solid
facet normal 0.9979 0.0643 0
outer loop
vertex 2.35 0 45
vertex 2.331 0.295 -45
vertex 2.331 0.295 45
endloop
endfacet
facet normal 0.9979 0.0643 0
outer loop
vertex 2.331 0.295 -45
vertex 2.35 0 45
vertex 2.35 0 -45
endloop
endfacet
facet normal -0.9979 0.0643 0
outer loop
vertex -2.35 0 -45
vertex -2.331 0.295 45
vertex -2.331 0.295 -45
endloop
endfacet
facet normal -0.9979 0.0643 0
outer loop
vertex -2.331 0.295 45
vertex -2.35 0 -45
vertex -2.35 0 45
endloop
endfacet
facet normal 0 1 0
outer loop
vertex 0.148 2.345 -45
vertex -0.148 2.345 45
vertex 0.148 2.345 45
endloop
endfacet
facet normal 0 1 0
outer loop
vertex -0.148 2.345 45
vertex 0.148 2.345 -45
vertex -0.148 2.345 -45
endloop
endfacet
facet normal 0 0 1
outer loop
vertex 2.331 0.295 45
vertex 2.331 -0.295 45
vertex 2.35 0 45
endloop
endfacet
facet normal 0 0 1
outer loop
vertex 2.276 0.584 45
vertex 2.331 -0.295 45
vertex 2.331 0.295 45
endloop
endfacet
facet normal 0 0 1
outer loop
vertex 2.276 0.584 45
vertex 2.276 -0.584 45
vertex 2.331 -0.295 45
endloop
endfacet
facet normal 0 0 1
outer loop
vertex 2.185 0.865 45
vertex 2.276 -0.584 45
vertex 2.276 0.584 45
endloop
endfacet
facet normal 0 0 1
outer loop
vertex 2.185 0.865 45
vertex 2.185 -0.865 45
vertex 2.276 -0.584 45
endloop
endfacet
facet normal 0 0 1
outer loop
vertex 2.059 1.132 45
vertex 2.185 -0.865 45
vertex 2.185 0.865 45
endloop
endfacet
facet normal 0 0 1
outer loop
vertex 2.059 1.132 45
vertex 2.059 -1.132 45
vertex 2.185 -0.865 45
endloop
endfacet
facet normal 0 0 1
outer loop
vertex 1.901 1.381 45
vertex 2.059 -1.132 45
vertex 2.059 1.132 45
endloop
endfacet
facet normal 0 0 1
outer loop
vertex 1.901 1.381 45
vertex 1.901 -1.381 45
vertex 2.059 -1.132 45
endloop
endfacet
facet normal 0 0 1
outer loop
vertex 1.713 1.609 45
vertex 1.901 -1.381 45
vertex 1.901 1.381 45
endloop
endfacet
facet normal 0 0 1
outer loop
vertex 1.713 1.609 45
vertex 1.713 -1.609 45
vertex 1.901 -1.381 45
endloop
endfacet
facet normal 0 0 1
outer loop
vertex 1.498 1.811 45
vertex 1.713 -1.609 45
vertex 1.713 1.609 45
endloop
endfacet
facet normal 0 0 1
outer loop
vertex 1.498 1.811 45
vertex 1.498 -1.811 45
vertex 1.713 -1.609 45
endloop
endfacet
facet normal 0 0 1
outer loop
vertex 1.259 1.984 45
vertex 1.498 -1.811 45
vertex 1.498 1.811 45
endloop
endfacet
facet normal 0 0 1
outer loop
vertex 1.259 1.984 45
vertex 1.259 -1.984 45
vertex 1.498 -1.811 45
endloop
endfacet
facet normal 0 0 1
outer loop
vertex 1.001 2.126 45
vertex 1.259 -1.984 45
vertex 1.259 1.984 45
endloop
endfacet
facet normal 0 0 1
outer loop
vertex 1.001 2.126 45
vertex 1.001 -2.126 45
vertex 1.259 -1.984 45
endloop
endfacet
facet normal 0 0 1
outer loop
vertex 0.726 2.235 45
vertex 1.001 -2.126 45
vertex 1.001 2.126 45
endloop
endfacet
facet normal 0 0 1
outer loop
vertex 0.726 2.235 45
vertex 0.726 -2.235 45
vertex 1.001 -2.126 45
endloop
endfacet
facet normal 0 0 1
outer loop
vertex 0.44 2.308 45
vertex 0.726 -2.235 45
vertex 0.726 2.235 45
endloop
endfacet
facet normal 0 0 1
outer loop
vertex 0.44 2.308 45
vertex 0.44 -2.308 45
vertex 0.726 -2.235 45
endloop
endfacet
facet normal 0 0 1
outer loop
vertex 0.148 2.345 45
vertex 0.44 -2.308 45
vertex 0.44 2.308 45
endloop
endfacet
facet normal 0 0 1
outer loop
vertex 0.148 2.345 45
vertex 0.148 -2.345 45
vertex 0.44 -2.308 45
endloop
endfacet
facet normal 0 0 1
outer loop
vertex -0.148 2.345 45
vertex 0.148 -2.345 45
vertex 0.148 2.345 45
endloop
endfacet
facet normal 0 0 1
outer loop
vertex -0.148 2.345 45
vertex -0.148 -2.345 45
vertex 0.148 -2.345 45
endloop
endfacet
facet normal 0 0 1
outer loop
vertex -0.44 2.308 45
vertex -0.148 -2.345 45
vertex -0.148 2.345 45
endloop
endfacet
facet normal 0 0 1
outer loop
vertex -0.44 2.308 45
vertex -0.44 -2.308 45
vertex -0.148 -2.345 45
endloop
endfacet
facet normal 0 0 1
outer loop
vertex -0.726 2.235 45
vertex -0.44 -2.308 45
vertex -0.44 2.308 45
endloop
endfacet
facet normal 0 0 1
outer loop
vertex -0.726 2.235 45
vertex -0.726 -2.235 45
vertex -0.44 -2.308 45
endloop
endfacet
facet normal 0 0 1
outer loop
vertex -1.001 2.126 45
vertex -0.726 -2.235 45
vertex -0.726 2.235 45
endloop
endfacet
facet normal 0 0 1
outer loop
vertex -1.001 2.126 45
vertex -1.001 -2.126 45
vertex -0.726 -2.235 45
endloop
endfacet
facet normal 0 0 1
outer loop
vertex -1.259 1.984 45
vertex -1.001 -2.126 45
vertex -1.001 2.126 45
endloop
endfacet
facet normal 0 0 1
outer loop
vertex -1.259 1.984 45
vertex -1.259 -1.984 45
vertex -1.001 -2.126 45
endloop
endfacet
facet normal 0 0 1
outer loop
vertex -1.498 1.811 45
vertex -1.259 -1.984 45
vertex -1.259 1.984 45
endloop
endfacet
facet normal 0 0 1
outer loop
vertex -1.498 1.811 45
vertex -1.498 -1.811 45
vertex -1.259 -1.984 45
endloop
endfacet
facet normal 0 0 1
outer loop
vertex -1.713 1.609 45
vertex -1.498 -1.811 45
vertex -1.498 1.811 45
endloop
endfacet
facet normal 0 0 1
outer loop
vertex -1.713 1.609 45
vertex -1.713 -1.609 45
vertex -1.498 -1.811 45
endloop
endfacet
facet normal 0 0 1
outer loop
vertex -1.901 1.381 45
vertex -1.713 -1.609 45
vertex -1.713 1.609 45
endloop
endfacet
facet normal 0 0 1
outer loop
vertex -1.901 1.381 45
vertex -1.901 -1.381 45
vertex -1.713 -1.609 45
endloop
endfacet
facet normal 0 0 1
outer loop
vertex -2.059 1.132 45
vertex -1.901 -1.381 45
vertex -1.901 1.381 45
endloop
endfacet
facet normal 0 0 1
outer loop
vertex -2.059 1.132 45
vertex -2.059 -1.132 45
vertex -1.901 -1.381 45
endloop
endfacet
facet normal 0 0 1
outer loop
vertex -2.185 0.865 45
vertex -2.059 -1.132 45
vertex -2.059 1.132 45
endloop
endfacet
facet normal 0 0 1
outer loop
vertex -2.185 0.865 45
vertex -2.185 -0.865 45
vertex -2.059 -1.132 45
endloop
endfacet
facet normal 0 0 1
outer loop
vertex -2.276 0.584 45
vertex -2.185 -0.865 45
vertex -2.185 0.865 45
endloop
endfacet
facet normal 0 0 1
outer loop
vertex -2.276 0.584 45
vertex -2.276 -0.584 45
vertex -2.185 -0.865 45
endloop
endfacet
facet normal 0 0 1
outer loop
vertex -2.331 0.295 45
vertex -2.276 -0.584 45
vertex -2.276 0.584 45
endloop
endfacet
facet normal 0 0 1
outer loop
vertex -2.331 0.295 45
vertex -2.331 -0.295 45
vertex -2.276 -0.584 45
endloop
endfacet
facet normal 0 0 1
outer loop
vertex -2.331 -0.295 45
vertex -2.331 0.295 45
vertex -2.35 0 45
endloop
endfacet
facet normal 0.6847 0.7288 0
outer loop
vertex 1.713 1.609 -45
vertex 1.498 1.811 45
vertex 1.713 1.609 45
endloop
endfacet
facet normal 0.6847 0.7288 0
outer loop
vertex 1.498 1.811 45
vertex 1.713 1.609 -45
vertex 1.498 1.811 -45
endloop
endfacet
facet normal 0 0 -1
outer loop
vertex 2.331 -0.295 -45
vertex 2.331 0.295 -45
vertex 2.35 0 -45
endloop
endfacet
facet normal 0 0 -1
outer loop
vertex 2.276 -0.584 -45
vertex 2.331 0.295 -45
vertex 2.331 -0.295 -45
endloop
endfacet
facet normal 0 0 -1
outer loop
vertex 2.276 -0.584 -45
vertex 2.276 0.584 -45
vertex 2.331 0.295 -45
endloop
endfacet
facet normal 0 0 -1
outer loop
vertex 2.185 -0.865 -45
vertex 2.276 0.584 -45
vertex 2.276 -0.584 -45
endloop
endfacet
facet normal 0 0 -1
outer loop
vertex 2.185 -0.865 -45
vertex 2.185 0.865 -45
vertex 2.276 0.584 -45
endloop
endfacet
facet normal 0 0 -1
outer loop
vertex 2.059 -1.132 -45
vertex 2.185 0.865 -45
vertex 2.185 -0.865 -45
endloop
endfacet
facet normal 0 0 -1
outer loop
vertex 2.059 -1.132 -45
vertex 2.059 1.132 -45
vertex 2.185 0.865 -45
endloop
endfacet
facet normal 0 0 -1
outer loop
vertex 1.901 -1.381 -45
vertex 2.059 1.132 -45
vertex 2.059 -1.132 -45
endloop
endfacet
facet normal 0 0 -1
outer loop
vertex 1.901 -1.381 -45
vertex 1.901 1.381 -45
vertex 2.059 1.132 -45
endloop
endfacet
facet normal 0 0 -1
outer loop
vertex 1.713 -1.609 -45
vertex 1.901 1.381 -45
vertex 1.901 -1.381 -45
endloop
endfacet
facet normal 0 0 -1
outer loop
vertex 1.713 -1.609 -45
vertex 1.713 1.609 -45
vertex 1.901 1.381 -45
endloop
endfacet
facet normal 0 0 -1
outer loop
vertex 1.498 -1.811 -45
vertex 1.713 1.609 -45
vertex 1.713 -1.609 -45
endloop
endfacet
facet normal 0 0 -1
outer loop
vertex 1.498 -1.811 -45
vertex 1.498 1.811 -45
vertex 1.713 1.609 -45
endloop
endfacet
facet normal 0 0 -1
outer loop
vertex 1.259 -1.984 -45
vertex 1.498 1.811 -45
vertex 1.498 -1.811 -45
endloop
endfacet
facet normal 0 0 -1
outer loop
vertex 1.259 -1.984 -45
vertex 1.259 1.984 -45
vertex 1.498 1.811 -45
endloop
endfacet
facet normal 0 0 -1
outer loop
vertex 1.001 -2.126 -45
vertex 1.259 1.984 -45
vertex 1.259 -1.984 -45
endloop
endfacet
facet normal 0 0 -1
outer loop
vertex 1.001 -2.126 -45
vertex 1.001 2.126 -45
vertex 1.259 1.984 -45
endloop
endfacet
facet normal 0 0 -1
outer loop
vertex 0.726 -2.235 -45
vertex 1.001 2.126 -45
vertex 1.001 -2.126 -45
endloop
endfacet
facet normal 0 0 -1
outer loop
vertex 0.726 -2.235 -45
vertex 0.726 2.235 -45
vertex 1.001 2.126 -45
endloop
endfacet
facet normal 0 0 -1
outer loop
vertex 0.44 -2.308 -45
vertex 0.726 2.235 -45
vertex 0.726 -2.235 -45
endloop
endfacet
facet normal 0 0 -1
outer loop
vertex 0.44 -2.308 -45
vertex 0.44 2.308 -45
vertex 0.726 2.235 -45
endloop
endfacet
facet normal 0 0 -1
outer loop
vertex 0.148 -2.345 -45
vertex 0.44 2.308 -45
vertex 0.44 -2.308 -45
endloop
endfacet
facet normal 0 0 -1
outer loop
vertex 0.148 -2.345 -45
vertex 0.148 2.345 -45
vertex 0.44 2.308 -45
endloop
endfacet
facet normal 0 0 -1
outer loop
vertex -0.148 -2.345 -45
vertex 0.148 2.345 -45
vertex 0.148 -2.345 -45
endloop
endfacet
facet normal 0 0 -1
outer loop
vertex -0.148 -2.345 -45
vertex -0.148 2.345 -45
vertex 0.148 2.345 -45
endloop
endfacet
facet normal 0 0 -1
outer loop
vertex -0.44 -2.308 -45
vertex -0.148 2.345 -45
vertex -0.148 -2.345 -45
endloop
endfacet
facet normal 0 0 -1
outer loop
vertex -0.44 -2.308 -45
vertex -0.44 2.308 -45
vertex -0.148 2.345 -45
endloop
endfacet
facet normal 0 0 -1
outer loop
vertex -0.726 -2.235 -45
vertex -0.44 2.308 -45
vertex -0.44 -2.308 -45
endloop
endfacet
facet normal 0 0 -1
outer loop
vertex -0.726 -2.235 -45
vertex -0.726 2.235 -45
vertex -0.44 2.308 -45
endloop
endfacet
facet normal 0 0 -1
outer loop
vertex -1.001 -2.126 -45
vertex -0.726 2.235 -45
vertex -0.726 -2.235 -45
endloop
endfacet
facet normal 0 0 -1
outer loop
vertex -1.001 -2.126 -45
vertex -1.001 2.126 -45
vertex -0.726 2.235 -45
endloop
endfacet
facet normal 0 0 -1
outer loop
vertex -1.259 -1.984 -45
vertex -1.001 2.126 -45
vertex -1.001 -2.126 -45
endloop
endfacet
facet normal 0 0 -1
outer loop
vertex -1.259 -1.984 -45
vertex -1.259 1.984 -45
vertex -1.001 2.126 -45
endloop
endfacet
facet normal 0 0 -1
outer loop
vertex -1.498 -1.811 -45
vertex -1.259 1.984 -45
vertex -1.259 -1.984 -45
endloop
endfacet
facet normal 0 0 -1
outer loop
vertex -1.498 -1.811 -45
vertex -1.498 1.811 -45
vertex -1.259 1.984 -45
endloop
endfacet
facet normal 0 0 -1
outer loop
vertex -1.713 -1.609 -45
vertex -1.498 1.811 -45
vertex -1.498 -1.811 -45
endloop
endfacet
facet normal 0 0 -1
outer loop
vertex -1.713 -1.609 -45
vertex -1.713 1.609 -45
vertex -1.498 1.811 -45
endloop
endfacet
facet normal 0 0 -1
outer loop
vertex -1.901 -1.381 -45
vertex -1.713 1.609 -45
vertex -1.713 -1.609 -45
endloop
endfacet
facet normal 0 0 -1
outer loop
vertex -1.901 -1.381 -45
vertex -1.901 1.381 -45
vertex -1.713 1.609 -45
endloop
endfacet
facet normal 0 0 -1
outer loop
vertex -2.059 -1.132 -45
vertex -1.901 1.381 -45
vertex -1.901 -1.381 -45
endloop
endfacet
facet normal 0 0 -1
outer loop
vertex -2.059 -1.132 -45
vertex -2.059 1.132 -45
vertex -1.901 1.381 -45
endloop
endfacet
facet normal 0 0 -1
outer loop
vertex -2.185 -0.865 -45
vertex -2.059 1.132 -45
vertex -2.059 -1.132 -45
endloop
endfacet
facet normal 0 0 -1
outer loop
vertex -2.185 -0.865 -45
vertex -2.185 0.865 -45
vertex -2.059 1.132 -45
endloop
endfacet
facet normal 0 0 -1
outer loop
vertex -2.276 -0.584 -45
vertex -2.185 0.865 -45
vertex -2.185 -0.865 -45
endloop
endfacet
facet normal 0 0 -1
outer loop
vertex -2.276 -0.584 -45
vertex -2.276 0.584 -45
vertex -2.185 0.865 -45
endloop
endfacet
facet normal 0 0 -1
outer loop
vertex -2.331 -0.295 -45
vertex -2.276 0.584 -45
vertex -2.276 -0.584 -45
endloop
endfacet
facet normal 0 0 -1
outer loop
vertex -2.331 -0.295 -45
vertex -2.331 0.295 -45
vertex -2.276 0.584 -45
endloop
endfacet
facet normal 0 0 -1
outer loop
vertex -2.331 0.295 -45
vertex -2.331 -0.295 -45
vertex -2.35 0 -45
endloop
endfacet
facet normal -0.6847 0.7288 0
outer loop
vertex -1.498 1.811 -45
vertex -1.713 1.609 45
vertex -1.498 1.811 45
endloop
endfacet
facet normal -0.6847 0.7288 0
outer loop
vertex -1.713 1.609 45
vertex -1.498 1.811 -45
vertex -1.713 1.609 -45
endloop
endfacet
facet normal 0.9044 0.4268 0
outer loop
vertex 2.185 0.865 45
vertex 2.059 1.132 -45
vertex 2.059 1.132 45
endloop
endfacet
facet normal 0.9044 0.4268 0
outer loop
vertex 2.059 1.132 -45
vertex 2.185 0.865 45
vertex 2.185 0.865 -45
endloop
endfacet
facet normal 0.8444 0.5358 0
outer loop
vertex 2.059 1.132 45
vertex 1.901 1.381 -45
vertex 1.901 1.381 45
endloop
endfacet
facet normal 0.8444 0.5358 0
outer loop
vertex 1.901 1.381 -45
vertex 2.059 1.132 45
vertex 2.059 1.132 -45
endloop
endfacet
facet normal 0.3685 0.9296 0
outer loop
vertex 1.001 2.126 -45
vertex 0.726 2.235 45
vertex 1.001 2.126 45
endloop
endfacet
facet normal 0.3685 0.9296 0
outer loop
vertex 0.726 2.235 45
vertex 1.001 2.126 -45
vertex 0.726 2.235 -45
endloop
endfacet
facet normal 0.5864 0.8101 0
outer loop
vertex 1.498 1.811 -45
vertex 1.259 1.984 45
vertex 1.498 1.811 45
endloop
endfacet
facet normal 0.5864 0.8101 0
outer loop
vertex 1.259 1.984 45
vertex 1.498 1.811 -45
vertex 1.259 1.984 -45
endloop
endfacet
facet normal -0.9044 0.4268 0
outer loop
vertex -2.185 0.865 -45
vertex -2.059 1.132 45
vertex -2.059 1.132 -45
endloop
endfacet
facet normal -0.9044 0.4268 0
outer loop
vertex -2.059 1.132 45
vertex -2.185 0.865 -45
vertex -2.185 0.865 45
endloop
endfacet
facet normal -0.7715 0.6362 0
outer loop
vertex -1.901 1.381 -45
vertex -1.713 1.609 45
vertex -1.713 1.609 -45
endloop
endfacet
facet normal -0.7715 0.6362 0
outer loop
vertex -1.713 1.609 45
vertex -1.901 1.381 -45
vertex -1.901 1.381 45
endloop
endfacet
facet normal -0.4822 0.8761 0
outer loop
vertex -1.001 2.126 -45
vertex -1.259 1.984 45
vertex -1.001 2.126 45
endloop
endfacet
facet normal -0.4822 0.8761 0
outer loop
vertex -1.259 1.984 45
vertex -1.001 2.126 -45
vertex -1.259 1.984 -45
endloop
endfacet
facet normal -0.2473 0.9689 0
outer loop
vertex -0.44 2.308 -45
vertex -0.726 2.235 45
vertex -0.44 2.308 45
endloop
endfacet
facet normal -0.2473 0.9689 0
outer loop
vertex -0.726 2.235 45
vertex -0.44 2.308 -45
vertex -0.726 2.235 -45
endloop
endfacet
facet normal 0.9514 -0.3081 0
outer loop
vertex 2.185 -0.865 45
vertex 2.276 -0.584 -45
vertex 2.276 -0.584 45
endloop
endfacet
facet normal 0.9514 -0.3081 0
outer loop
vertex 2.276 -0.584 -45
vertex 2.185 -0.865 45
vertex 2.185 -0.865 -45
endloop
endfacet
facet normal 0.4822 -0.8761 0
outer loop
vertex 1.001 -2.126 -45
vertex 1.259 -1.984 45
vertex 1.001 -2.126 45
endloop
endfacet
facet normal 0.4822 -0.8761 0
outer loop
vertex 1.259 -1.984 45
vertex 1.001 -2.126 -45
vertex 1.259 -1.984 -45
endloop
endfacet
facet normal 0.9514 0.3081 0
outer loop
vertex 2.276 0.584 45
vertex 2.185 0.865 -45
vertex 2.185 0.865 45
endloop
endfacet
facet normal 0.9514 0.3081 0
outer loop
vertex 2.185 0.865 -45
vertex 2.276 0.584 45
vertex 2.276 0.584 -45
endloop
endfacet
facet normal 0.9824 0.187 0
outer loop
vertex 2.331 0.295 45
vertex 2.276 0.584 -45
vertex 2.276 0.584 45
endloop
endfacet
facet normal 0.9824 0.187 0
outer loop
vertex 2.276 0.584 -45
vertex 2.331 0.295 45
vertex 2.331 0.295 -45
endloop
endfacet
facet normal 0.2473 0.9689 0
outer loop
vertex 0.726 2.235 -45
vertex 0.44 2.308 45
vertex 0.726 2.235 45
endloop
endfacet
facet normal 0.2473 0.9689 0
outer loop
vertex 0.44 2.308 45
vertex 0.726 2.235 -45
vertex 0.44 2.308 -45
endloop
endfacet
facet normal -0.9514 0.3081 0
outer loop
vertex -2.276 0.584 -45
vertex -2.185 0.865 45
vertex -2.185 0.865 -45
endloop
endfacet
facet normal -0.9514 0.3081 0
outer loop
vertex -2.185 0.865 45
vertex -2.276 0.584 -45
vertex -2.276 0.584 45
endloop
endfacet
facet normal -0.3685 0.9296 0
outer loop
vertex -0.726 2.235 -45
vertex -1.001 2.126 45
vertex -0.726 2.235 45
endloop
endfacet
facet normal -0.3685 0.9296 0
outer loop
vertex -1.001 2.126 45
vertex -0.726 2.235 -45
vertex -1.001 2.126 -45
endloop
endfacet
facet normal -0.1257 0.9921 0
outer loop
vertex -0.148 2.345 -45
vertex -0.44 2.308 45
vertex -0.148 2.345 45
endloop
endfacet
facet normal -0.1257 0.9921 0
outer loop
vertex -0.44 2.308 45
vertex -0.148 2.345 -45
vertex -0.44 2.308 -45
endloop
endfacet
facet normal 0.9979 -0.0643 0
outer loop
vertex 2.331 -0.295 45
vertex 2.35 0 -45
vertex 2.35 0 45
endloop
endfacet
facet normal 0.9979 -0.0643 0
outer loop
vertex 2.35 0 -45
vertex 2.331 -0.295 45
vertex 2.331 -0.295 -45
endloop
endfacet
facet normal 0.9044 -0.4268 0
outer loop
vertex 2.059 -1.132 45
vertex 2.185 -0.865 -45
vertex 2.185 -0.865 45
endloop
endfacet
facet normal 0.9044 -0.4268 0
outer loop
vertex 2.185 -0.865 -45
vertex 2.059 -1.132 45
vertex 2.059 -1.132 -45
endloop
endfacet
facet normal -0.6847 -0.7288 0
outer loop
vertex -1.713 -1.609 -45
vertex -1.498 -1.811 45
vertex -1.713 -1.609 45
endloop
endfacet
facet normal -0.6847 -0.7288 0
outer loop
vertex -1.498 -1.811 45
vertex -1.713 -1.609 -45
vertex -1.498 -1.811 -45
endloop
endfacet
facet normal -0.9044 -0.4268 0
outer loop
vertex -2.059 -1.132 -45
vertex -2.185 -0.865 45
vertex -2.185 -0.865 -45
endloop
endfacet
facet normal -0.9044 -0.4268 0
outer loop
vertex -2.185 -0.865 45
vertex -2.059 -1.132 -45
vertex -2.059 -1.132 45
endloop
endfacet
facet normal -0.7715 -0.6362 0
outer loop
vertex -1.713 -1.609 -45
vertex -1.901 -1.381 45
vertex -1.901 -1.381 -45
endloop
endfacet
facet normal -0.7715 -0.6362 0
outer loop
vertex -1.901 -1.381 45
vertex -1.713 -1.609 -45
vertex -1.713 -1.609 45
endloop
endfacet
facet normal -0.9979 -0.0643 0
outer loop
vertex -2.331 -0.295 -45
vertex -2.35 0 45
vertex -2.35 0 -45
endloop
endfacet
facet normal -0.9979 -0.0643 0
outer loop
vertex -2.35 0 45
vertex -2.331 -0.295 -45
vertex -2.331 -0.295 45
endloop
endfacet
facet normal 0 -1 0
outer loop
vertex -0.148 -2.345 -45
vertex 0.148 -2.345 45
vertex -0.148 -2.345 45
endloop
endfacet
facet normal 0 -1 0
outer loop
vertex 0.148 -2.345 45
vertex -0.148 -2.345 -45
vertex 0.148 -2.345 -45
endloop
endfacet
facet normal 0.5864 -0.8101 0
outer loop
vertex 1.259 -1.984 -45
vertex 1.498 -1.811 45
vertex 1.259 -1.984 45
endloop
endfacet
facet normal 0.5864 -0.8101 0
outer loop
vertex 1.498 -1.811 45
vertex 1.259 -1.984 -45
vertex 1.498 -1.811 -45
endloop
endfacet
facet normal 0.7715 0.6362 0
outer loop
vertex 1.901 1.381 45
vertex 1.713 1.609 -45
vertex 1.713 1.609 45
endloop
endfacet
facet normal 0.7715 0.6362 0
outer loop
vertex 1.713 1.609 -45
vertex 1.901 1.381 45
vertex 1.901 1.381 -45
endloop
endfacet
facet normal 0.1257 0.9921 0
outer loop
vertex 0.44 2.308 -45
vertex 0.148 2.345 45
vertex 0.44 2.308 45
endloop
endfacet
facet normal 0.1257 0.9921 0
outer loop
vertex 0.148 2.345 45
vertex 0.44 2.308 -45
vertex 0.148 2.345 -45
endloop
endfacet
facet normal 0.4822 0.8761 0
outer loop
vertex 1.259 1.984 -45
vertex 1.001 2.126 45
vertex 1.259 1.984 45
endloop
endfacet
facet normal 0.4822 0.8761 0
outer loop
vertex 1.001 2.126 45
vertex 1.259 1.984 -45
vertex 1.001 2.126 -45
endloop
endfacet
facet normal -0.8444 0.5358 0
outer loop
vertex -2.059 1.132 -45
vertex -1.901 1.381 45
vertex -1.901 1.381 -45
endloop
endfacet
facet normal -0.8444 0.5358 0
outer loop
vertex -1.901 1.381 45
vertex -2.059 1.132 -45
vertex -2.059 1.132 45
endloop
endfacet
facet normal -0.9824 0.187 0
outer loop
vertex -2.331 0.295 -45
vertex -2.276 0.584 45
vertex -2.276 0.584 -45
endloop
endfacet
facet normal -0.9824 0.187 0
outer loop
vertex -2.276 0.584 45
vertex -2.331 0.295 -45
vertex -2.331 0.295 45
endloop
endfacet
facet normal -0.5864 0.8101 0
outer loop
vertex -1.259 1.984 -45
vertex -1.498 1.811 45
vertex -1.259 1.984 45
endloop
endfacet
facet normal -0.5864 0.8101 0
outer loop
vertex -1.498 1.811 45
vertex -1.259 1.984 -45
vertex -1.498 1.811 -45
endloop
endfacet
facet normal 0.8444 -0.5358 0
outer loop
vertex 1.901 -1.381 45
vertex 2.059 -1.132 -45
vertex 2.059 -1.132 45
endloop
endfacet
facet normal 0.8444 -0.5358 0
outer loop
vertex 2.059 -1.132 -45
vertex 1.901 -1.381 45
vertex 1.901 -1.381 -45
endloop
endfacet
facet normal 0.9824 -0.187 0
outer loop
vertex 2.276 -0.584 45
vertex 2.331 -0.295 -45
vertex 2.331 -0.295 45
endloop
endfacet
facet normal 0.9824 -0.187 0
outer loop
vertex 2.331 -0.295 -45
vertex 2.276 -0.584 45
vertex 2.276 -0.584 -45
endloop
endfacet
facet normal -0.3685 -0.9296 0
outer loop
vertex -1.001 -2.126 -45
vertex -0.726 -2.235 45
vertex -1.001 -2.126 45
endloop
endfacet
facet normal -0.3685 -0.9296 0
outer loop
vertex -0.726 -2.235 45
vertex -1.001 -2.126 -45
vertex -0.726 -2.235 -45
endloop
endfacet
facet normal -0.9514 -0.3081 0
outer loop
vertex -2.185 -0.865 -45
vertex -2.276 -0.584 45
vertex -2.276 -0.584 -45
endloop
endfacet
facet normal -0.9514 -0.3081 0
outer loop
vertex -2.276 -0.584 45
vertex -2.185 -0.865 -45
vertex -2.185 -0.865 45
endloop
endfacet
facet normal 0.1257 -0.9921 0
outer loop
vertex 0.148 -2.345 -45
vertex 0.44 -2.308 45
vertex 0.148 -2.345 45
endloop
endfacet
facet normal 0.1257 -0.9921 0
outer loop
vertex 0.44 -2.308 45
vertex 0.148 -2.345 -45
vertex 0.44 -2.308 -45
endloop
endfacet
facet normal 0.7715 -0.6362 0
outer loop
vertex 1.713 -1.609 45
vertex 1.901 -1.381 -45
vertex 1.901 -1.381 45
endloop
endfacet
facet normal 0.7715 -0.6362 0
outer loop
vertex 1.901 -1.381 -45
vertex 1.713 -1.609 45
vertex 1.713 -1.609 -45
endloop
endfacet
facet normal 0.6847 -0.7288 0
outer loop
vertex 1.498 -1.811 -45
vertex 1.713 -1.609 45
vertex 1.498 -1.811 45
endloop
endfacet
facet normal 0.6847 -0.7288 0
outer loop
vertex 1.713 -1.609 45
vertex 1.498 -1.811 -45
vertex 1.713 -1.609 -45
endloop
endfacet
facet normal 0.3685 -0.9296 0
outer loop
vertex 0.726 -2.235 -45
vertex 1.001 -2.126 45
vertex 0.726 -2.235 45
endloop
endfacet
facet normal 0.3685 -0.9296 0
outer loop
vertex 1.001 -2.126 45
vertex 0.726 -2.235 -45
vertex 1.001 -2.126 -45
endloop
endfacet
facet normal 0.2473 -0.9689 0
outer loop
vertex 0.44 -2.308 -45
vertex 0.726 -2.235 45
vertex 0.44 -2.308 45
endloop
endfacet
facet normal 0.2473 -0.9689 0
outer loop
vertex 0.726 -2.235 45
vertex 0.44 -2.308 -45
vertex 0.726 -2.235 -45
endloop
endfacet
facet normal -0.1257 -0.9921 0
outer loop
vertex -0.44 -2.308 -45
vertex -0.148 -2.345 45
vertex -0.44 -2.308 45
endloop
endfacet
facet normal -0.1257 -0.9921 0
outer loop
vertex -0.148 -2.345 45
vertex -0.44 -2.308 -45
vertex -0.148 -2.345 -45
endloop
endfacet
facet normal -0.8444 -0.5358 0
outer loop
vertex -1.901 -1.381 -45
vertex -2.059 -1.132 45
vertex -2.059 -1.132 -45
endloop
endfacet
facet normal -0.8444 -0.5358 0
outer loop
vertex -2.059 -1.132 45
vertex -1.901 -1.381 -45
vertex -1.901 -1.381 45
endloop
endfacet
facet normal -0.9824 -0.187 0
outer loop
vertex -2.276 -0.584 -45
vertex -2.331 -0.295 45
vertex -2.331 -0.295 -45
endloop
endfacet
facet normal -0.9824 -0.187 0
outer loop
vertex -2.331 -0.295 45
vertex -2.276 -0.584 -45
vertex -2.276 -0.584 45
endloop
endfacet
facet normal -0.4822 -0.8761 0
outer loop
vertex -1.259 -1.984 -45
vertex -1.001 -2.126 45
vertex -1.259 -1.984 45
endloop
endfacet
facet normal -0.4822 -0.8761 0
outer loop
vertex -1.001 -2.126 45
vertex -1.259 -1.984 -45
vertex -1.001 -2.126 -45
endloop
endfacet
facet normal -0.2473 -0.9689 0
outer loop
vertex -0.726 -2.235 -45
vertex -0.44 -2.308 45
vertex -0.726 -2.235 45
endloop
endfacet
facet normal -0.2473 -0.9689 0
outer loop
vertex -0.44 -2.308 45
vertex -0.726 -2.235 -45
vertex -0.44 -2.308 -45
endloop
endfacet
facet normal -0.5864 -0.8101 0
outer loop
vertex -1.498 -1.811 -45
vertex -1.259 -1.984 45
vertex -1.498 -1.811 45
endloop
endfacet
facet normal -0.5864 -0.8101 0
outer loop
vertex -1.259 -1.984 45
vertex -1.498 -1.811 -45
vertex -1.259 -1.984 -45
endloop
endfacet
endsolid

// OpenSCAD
$fn = 50;


difference() {
	union() {
		translate(v = [0, 0, -45.0000000000]) {
			cylinder(h = 90, r = 2.3500000000);
		}
	}
	union() {
		translate(v = [0, 0, -100.0000000000]) {
			cylinder(h = 200, r = 0);
		}
	}
}
